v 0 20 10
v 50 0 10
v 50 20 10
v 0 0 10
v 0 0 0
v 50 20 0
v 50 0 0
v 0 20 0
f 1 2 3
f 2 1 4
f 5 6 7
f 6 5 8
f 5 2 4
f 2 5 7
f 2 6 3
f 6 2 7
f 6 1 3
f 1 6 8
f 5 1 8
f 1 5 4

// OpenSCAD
// Define dimensions for the rectangular block
block_length = 50;  // Length of the block
block_width = 20;   // Width of the block
block_height = 10;  // Height of the block

// Create the rectangular block
cube([block_length, block_width, block_height]);
